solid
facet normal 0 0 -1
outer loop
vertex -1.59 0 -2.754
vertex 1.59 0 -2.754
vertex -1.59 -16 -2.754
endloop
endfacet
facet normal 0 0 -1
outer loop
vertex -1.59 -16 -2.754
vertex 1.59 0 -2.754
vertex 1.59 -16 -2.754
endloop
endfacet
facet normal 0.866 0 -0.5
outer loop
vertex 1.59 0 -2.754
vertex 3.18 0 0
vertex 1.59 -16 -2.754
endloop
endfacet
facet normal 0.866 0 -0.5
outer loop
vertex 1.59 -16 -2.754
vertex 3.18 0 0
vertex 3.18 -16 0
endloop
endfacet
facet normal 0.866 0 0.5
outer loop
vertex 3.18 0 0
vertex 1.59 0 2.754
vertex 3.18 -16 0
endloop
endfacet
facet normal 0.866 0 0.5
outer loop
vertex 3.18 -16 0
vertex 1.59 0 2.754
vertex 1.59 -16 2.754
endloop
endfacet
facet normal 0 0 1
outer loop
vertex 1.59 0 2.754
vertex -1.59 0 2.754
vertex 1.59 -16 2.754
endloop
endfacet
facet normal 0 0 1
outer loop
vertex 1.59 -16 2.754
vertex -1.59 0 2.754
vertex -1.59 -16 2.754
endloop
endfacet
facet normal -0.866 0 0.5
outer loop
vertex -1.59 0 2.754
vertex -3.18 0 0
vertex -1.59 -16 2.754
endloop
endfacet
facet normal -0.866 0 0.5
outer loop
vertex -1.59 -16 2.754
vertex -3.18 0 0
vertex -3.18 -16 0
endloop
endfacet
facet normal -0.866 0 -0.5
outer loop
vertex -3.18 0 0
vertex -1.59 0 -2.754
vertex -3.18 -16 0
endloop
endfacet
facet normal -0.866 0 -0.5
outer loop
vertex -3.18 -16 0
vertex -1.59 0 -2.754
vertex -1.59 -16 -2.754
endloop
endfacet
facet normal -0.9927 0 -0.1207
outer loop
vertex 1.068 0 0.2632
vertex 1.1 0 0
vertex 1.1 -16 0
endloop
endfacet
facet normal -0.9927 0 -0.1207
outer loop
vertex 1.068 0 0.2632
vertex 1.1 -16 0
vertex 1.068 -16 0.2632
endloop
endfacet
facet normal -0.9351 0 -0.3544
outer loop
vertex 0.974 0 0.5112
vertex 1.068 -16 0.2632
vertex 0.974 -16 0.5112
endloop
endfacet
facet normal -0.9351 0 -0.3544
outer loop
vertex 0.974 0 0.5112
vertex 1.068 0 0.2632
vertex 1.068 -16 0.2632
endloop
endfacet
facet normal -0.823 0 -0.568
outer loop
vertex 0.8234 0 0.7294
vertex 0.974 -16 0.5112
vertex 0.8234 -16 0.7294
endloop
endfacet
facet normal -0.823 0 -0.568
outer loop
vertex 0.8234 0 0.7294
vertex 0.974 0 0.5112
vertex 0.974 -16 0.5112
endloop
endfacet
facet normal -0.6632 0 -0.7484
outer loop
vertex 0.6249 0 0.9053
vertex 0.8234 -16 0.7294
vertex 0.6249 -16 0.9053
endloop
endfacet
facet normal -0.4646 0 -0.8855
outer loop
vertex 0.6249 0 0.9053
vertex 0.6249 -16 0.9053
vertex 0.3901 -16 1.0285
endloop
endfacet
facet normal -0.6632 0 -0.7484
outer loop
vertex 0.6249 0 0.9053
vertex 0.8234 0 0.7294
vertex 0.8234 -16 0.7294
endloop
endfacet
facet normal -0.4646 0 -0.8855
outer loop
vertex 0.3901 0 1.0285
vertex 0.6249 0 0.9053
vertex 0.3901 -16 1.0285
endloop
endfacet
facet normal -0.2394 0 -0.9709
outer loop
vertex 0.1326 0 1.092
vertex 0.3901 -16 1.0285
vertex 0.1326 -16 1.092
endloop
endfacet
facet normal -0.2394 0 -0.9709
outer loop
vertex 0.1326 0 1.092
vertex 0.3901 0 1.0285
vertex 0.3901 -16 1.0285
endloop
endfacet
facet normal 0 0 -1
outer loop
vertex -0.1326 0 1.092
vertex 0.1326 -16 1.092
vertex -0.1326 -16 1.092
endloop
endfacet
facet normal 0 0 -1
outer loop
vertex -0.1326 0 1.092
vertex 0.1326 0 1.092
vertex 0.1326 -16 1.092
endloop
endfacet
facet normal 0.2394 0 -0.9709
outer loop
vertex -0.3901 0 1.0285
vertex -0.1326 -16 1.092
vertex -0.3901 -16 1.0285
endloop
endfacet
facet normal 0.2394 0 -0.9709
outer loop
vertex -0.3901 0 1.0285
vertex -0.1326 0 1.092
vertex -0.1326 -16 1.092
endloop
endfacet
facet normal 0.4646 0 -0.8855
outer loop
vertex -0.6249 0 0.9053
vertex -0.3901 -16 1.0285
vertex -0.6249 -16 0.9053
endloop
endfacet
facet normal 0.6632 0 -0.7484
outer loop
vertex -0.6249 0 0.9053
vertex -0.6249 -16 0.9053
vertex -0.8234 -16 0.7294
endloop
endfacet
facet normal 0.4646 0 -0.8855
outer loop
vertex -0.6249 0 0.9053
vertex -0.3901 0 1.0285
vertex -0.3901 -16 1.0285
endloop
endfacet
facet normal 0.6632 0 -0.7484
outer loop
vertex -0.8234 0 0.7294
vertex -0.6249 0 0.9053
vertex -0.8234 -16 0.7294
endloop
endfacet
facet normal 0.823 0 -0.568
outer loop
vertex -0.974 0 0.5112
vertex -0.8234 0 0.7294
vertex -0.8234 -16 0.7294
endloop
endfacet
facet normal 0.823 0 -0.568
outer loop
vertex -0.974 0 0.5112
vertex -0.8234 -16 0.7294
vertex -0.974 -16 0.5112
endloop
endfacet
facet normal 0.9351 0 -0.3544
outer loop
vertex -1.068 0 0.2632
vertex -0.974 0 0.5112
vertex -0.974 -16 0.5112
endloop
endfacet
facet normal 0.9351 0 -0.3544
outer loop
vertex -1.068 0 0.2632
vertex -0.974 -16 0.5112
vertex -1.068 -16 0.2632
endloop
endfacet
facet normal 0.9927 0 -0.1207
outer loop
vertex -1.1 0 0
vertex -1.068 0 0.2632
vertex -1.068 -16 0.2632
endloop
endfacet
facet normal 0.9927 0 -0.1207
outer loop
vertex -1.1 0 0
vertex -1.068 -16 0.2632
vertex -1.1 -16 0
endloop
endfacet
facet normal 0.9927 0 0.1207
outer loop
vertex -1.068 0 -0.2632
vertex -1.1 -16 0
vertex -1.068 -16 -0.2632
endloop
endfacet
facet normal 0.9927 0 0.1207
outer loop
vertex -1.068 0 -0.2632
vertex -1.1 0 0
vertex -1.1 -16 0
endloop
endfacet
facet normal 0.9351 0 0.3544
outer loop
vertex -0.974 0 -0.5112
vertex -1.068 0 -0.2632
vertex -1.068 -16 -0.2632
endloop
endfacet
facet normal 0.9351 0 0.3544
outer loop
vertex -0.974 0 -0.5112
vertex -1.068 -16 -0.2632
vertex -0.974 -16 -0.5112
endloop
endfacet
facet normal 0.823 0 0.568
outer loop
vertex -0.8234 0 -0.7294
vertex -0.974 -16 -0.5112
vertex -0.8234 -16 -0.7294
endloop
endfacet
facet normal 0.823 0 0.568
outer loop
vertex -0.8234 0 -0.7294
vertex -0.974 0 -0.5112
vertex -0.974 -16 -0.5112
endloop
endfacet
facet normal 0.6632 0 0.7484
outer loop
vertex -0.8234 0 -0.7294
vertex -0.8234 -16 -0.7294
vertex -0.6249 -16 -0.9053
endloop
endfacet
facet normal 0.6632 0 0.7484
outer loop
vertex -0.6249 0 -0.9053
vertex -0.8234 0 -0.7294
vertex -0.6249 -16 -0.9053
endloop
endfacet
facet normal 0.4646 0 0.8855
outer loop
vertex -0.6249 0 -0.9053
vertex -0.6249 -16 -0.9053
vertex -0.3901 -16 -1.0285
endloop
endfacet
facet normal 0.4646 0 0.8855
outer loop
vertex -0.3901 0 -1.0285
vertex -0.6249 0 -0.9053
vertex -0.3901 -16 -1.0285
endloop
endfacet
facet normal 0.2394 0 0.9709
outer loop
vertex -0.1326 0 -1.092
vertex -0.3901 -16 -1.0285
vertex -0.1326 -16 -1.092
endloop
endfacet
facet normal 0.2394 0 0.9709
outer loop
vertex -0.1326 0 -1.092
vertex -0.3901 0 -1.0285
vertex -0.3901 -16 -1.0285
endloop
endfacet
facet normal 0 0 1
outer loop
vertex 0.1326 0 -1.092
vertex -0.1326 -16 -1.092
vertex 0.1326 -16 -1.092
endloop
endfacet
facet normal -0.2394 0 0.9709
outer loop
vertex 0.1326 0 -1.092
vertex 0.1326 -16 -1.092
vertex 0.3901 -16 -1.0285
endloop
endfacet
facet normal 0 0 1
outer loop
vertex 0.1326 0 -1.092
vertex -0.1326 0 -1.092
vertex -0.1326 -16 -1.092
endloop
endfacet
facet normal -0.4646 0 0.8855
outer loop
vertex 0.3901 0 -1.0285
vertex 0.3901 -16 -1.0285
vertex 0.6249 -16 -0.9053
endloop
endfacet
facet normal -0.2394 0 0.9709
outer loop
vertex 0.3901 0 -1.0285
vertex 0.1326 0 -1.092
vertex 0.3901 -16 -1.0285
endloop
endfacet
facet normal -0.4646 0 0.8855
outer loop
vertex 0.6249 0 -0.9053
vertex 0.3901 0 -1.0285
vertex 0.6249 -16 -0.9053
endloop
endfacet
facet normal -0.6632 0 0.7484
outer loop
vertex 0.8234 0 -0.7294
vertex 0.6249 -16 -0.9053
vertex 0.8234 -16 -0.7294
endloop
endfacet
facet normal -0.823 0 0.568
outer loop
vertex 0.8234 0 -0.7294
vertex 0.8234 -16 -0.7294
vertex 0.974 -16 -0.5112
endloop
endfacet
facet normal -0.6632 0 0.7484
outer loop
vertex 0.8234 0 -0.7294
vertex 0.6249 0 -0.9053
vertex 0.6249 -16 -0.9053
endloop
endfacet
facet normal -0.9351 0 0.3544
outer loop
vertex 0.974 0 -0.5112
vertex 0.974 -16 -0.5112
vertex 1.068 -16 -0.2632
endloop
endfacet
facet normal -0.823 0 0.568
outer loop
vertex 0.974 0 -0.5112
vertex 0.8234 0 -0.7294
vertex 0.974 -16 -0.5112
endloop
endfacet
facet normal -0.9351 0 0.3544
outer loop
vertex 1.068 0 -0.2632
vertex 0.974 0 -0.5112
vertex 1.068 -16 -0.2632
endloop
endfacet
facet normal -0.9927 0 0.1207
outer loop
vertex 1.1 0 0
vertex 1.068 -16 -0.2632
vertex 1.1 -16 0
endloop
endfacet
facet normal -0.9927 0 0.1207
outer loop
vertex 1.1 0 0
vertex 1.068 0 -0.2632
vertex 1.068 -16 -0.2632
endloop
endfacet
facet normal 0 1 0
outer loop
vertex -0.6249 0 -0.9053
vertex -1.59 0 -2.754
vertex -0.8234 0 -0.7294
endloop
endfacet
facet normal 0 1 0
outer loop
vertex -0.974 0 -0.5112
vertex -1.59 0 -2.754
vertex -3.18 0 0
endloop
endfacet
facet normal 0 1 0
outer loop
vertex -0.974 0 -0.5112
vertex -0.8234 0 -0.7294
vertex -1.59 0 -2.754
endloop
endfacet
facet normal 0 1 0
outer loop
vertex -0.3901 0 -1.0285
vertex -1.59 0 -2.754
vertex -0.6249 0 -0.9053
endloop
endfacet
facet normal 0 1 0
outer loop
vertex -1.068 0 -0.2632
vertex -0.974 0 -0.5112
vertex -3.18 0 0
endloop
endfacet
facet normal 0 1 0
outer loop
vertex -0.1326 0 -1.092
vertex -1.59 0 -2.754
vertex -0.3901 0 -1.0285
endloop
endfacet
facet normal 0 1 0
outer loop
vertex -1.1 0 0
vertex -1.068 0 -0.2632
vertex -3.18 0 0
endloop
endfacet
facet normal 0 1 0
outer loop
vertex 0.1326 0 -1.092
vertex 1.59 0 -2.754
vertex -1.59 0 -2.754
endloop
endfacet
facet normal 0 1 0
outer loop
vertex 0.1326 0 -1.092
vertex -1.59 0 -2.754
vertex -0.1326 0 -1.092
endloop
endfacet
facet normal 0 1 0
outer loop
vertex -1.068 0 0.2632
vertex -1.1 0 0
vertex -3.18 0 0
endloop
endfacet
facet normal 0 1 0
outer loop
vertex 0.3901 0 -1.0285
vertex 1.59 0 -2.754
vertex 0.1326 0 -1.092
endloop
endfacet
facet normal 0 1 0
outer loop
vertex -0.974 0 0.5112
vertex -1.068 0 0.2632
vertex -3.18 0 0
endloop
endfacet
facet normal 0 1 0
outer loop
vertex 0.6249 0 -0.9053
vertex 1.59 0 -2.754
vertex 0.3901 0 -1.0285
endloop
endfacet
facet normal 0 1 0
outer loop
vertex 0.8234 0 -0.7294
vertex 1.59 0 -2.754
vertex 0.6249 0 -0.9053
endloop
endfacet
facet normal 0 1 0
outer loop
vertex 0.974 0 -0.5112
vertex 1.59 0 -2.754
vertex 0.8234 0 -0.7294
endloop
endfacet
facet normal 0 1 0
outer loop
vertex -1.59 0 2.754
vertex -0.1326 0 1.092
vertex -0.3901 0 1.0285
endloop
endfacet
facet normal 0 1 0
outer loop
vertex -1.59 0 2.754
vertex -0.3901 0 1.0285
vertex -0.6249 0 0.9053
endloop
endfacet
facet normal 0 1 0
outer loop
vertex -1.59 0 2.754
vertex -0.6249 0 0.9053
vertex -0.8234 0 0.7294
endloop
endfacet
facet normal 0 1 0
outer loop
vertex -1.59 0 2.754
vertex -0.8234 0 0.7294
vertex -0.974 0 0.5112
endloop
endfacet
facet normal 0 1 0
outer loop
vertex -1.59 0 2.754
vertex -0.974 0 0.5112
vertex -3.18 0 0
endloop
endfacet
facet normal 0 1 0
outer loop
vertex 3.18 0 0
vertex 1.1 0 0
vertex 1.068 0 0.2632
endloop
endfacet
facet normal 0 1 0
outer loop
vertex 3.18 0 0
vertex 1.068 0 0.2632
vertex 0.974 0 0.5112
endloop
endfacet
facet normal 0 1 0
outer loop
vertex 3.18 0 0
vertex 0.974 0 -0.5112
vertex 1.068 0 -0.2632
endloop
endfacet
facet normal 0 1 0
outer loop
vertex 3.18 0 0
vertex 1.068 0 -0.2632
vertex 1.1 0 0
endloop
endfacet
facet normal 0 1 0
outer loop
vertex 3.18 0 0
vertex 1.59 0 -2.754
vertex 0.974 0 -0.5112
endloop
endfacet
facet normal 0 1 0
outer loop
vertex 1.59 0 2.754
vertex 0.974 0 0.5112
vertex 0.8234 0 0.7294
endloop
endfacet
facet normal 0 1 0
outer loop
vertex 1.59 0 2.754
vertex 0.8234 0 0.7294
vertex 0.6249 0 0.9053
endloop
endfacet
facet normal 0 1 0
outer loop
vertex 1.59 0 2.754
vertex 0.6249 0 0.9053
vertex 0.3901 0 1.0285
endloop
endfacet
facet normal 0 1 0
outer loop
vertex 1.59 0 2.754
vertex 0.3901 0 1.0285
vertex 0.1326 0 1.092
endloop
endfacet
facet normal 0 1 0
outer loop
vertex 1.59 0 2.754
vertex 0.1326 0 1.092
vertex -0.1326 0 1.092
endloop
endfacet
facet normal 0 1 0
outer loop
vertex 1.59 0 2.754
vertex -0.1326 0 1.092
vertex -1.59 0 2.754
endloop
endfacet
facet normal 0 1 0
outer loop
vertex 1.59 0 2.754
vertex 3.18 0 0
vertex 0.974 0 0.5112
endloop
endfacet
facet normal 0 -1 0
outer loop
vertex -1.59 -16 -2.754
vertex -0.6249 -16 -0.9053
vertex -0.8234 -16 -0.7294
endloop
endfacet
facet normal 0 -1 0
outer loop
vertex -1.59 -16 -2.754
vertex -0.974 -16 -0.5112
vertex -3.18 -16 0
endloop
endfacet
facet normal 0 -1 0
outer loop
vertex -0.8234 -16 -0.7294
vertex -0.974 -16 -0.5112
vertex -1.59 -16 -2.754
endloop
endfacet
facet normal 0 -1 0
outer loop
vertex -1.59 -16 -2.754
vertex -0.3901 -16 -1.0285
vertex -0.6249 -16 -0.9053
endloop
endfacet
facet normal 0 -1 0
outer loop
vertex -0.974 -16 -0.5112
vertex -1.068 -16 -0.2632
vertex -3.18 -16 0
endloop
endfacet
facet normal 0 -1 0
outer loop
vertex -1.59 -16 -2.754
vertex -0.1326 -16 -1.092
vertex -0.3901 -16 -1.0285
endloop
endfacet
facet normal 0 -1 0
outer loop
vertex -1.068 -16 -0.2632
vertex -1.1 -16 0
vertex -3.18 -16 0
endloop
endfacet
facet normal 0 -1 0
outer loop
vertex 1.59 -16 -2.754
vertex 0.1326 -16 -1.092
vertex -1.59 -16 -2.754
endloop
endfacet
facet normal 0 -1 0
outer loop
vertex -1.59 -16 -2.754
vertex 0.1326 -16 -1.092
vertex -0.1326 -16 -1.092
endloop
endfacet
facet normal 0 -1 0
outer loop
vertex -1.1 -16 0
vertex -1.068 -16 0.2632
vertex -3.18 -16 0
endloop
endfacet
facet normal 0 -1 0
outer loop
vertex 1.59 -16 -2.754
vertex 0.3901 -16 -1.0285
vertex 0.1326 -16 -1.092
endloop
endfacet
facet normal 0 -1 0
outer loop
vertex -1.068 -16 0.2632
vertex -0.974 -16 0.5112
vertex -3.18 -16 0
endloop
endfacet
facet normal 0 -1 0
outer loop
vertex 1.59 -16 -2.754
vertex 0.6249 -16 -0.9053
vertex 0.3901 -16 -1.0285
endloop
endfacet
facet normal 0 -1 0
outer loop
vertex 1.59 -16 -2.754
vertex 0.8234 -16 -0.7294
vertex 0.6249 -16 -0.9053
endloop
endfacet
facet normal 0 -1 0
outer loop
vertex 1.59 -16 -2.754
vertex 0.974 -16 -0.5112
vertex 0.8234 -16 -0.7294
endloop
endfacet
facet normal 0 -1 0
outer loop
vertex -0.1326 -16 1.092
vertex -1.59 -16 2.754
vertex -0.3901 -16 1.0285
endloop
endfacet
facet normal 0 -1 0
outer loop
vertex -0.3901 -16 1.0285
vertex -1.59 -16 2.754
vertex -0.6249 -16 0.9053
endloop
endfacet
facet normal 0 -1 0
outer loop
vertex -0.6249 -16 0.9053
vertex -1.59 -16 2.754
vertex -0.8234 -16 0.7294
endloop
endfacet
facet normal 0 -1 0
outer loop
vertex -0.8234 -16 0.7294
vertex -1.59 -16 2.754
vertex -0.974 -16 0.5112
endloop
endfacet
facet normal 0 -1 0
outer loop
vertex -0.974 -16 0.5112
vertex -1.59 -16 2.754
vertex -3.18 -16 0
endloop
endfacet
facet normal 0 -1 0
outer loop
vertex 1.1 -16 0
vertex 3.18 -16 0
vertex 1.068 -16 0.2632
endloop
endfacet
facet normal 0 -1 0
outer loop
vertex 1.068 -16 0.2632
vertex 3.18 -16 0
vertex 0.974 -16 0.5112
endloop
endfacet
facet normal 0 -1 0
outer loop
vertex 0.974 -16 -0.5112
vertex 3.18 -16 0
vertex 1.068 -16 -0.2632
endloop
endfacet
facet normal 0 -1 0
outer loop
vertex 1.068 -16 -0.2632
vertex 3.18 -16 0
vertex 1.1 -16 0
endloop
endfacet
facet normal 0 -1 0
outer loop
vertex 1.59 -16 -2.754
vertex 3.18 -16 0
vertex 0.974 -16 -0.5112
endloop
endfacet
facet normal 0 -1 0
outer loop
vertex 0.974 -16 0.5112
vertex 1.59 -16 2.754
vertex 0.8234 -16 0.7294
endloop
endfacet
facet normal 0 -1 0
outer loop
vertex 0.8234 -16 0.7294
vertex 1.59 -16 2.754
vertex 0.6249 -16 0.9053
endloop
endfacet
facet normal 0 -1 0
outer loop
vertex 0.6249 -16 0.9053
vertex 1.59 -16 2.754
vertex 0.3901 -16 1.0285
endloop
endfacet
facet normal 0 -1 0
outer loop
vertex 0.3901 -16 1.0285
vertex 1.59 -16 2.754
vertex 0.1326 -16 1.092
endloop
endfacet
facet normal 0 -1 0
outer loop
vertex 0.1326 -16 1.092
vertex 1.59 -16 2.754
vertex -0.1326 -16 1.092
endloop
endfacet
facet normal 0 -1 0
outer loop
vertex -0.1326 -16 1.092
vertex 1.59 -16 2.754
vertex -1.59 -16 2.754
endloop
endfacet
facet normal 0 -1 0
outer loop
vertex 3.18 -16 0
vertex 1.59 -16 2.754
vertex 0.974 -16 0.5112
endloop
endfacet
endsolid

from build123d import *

# Parameters (mm, degrees)
SKETCH_R  = 1.1
PAD_DEPTH = 16


with BuildPart() as part:
    # Sketch → Pad (new body)
    with BuildSketch(Plane.XZ):
        Polygon((-1.59, -2.753961), (1.59, -2.753961), (3.18, 0), (1.59, 2.753961), (-1.59, 2.753961), (-3.18, 0), align=None)
        Circle(SKETCH_R, mode=Mode.SUBTRACT)
    extrude(amount=PAD_DEPTH)


solid = part.part
